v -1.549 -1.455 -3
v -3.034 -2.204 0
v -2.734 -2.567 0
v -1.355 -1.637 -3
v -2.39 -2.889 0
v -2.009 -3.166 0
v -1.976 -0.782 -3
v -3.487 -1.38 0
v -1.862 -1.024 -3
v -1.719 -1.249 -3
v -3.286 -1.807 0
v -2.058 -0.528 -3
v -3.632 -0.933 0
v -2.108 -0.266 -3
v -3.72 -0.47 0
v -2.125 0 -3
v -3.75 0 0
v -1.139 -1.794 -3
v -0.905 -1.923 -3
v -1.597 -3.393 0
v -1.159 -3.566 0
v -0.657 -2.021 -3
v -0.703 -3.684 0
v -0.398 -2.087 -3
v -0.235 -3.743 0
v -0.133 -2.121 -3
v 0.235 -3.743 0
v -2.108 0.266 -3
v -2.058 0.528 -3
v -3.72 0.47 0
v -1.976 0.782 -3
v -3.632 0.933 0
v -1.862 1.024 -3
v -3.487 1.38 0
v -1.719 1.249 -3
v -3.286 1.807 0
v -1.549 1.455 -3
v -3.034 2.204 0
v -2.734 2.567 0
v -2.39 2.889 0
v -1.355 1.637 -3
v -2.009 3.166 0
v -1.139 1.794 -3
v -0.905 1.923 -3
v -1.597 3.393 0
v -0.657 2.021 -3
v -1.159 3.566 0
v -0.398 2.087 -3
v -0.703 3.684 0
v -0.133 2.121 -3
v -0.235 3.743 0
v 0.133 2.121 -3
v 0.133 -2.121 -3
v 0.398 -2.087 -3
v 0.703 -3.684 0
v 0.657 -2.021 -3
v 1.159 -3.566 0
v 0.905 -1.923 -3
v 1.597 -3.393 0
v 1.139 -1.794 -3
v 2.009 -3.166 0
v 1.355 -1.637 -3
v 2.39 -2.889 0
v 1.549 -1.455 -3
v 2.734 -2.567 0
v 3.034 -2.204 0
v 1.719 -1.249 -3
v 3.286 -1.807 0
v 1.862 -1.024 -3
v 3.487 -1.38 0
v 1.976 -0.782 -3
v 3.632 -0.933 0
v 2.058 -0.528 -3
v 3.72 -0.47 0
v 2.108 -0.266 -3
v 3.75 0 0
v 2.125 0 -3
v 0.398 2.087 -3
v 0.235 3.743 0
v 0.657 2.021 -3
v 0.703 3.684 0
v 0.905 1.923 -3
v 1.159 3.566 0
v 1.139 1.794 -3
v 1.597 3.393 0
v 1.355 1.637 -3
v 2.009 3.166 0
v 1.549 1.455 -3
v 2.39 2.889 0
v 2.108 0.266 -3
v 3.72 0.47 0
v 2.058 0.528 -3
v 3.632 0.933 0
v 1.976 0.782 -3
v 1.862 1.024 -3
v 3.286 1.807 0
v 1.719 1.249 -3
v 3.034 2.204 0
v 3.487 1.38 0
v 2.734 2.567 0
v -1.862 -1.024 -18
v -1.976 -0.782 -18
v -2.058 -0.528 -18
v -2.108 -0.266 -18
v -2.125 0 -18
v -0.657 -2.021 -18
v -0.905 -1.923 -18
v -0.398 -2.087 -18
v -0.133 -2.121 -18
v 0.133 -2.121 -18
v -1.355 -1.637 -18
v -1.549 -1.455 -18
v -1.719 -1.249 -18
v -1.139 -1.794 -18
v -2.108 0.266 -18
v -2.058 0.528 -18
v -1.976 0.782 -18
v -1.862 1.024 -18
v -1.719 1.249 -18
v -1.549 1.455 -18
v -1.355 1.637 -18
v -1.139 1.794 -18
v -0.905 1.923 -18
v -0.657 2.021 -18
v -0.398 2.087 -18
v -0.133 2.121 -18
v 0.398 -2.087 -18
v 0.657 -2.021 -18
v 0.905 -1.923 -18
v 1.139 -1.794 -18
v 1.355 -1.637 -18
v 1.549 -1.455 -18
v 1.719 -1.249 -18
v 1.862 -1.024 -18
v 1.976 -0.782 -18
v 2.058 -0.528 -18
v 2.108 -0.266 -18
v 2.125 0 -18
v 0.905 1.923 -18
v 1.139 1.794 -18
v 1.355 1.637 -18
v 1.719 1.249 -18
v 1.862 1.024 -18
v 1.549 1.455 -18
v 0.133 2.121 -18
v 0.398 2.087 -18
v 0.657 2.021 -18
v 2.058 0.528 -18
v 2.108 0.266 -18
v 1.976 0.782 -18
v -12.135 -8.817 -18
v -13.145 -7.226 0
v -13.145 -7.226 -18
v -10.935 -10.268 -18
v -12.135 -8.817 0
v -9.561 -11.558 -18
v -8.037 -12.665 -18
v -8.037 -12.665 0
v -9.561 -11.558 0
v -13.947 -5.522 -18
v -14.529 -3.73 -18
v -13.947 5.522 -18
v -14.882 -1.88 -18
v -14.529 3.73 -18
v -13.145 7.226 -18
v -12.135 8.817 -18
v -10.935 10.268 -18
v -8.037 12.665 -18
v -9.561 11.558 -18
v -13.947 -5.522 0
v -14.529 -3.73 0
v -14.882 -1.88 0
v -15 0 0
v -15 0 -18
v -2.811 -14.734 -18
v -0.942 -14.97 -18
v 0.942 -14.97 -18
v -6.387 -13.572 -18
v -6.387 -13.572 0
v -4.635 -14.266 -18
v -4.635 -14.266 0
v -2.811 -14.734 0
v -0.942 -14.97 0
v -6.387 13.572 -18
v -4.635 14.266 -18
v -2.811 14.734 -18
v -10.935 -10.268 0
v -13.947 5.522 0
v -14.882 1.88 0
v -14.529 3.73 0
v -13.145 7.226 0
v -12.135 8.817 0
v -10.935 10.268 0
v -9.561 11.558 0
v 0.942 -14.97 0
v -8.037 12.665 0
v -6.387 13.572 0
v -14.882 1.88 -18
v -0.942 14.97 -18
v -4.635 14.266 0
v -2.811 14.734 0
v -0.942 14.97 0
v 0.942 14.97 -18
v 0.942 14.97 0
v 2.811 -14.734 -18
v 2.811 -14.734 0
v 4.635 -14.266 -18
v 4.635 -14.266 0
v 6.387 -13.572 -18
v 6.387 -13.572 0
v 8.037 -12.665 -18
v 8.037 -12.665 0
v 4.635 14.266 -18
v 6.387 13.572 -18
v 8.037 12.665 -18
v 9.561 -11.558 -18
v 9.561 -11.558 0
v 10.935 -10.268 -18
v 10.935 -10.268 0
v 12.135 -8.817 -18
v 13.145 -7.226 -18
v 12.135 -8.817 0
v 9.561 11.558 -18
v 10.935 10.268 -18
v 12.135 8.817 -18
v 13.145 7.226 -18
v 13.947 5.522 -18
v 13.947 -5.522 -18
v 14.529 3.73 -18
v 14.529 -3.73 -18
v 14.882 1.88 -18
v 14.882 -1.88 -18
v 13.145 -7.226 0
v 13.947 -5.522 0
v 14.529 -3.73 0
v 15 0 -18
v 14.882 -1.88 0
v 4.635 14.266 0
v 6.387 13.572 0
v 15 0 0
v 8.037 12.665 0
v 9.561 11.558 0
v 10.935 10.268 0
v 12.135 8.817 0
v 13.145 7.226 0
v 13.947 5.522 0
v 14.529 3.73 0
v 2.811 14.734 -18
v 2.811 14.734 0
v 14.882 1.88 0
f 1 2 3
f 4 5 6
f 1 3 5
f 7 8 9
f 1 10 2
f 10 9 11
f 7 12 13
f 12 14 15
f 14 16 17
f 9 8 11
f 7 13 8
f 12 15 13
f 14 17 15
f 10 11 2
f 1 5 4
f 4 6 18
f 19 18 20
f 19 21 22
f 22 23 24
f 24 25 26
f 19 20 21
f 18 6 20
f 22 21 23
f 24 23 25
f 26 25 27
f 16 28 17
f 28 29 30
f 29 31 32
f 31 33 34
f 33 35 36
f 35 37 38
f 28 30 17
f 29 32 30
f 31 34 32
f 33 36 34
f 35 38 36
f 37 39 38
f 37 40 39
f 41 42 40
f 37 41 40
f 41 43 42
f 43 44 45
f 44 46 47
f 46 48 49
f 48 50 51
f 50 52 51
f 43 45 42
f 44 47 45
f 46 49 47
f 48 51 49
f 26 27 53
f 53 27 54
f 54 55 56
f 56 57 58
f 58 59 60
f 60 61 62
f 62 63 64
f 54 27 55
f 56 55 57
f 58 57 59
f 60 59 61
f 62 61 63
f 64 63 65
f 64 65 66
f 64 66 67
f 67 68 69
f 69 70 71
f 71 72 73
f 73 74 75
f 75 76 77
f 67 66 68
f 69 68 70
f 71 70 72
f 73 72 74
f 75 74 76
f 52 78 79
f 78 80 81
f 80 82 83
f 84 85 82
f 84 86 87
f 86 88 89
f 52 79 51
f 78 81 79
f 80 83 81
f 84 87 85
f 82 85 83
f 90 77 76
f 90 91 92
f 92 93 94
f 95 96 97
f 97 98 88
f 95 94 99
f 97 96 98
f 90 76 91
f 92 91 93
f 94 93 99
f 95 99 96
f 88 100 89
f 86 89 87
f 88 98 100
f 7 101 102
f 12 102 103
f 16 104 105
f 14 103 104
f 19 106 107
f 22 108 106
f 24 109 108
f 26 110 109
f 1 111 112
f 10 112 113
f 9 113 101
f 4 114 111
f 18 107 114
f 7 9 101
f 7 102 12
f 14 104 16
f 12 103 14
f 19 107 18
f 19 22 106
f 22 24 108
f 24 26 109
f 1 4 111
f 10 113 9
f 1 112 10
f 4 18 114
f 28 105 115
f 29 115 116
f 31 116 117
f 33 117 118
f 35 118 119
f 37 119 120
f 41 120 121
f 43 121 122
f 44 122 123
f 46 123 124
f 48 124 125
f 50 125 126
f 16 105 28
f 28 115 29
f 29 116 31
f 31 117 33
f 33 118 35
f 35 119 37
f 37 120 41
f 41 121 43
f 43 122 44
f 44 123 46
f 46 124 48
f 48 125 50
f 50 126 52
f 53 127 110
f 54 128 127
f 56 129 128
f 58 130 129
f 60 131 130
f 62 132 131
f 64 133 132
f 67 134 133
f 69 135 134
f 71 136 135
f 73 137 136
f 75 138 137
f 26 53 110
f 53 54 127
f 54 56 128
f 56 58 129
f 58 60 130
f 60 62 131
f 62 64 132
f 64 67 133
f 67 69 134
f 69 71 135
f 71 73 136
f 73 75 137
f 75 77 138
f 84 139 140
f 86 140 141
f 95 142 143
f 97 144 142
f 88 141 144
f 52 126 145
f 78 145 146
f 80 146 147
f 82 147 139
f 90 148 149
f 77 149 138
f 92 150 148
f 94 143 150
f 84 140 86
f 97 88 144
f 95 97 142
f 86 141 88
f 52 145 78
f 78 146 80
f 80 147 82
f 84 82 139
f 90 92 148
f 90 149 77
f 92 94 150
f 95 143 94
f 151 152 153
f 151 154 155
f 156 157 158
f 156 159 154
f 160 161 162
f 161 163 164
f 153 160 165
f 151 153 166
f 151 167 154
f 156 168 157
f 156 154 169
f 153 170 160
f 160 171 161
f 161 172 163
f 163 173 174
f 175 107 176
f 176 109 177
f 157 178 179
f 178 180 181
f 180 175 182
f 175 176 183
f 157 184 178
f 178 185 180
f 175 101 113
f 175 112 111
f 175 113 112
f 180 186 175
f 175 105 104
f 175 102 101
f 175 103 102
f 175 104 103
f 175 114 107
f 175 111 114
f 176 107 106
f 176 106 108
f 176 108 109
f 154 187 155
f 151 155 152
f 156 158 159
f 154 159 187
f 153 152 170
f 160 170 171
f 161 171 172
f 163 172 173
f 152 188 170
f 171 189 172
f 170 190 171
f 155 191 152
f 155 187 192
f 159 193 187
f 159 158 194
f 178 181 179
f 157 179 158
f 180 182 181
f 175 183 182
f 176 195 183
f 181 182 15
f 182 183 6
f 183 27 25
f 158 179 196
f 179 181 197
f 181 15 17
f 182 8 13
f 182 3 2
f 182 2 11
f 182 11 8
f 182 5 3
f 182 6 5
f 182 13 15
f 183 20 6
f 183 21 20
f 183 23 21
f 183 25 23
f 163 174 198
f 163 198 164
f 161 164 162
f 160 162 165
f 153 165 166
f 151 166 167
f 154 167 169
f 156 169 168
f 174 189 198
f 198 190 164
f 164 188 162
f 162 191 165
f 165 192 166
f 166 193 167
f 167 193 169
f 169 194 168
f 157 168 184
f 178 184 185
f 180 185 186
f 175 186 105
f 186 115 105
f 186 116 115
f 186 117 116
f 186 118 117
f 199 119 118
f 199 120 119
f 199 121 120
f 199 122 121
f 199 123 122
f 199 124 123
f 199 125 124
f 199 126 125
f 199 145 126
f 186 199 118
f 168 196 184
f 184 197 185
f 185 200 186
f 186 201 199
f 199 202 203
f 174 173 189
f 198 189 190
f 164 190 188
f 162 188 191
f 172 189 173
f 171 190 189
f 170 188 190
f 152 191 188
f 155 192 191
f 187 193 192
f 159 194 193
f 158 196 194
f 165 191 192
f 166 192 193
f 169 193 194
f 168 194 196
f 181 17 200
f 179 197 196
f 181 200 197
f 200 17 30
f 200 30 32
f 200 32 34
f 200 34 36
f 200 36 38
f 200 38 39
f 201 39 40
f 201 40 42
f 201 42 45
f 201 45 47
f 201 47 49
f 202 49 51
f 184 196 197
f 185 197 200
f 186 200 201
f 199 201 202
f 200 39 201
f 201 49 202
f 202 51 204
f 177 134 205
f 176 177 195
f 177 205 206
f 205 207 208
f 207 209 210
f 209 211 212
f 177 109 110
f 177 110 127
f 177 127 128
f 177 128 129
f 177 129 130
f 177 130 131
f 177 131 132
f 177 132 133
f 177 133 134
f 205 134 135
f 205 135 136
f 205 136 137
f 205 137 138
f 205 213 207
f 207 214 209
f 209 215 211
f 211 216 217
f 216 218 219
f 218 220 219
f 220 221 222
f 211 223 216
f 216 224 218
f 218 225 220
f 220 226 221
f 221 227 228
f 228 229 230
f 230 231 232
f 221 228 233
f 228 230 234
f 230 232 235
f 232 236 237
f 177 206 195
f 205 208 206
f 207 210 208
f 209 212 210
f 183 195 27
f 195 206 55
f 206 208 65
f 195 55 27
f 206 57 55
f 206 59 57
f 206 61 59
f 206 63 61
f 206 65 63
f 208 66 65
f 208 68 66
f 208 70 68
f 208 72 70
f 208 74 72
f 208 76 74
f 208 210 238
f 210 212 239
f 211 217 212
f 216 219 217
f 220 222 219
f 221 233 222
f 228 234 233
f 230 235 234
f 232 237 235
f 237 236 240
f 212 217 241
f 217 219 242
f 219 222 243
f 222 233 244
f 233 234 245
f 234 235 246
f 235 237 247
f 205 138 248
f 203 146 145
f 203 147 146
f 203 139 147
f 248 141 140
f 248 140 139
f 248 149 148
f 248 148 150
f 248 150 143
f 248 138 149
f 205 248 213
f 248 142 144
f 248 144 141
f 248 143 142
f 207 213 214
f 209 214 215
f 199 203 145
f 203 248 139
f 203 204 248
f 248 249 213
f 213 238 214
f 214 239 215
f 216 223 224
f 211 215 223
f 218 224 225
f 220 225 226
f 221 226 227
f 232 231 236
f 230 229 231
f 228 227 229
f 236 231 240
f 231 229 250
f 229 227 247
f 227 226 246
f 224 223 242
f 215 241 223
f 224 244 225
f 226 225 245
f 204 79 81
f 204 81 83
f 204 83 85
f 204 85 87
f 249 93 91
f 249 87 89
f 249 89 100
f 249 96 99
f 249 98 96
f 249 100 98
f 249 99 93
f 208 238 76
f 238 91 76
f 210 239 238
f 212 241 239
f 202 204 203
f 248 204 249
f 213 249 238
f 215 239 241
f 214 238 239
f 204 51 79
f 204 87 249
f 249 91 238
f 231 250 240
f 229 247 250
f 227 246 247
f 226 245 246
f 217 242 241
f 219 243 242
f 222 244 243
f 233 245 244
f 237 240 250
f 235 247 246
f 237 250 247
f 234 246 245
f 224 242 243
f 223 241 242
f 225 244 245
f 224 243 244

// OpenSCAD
$fn = 50;

difference() {
	union() {
		translate(v = [0, 0, -18.0]) {
			cylinder(h = 18, r = 15.0);
		}
	}
	union() {
		translate(v = [0, 0, 0]) {
			rotate(a = [0, 0, 0]) {
				difference() {
					union() {
						translate(v = [0, 0, -21.0]) {
							cylinder(h = 21, r = 2.0);
						}
						translate(v = [0, 0, -3]) {
							cylinder(h = 3, r1 = 2.125, r2 = 3.75);
						}
						translate(v = [0, 0, -21.0]) {
							cylinder(h = 21, r = 2.125);
						}
						translate(v = [0, 0, -21.0]) {
							cylinder(h = 21, r = 2.0);
						}
					}
					union();
				}
			}
		}
	}
}
